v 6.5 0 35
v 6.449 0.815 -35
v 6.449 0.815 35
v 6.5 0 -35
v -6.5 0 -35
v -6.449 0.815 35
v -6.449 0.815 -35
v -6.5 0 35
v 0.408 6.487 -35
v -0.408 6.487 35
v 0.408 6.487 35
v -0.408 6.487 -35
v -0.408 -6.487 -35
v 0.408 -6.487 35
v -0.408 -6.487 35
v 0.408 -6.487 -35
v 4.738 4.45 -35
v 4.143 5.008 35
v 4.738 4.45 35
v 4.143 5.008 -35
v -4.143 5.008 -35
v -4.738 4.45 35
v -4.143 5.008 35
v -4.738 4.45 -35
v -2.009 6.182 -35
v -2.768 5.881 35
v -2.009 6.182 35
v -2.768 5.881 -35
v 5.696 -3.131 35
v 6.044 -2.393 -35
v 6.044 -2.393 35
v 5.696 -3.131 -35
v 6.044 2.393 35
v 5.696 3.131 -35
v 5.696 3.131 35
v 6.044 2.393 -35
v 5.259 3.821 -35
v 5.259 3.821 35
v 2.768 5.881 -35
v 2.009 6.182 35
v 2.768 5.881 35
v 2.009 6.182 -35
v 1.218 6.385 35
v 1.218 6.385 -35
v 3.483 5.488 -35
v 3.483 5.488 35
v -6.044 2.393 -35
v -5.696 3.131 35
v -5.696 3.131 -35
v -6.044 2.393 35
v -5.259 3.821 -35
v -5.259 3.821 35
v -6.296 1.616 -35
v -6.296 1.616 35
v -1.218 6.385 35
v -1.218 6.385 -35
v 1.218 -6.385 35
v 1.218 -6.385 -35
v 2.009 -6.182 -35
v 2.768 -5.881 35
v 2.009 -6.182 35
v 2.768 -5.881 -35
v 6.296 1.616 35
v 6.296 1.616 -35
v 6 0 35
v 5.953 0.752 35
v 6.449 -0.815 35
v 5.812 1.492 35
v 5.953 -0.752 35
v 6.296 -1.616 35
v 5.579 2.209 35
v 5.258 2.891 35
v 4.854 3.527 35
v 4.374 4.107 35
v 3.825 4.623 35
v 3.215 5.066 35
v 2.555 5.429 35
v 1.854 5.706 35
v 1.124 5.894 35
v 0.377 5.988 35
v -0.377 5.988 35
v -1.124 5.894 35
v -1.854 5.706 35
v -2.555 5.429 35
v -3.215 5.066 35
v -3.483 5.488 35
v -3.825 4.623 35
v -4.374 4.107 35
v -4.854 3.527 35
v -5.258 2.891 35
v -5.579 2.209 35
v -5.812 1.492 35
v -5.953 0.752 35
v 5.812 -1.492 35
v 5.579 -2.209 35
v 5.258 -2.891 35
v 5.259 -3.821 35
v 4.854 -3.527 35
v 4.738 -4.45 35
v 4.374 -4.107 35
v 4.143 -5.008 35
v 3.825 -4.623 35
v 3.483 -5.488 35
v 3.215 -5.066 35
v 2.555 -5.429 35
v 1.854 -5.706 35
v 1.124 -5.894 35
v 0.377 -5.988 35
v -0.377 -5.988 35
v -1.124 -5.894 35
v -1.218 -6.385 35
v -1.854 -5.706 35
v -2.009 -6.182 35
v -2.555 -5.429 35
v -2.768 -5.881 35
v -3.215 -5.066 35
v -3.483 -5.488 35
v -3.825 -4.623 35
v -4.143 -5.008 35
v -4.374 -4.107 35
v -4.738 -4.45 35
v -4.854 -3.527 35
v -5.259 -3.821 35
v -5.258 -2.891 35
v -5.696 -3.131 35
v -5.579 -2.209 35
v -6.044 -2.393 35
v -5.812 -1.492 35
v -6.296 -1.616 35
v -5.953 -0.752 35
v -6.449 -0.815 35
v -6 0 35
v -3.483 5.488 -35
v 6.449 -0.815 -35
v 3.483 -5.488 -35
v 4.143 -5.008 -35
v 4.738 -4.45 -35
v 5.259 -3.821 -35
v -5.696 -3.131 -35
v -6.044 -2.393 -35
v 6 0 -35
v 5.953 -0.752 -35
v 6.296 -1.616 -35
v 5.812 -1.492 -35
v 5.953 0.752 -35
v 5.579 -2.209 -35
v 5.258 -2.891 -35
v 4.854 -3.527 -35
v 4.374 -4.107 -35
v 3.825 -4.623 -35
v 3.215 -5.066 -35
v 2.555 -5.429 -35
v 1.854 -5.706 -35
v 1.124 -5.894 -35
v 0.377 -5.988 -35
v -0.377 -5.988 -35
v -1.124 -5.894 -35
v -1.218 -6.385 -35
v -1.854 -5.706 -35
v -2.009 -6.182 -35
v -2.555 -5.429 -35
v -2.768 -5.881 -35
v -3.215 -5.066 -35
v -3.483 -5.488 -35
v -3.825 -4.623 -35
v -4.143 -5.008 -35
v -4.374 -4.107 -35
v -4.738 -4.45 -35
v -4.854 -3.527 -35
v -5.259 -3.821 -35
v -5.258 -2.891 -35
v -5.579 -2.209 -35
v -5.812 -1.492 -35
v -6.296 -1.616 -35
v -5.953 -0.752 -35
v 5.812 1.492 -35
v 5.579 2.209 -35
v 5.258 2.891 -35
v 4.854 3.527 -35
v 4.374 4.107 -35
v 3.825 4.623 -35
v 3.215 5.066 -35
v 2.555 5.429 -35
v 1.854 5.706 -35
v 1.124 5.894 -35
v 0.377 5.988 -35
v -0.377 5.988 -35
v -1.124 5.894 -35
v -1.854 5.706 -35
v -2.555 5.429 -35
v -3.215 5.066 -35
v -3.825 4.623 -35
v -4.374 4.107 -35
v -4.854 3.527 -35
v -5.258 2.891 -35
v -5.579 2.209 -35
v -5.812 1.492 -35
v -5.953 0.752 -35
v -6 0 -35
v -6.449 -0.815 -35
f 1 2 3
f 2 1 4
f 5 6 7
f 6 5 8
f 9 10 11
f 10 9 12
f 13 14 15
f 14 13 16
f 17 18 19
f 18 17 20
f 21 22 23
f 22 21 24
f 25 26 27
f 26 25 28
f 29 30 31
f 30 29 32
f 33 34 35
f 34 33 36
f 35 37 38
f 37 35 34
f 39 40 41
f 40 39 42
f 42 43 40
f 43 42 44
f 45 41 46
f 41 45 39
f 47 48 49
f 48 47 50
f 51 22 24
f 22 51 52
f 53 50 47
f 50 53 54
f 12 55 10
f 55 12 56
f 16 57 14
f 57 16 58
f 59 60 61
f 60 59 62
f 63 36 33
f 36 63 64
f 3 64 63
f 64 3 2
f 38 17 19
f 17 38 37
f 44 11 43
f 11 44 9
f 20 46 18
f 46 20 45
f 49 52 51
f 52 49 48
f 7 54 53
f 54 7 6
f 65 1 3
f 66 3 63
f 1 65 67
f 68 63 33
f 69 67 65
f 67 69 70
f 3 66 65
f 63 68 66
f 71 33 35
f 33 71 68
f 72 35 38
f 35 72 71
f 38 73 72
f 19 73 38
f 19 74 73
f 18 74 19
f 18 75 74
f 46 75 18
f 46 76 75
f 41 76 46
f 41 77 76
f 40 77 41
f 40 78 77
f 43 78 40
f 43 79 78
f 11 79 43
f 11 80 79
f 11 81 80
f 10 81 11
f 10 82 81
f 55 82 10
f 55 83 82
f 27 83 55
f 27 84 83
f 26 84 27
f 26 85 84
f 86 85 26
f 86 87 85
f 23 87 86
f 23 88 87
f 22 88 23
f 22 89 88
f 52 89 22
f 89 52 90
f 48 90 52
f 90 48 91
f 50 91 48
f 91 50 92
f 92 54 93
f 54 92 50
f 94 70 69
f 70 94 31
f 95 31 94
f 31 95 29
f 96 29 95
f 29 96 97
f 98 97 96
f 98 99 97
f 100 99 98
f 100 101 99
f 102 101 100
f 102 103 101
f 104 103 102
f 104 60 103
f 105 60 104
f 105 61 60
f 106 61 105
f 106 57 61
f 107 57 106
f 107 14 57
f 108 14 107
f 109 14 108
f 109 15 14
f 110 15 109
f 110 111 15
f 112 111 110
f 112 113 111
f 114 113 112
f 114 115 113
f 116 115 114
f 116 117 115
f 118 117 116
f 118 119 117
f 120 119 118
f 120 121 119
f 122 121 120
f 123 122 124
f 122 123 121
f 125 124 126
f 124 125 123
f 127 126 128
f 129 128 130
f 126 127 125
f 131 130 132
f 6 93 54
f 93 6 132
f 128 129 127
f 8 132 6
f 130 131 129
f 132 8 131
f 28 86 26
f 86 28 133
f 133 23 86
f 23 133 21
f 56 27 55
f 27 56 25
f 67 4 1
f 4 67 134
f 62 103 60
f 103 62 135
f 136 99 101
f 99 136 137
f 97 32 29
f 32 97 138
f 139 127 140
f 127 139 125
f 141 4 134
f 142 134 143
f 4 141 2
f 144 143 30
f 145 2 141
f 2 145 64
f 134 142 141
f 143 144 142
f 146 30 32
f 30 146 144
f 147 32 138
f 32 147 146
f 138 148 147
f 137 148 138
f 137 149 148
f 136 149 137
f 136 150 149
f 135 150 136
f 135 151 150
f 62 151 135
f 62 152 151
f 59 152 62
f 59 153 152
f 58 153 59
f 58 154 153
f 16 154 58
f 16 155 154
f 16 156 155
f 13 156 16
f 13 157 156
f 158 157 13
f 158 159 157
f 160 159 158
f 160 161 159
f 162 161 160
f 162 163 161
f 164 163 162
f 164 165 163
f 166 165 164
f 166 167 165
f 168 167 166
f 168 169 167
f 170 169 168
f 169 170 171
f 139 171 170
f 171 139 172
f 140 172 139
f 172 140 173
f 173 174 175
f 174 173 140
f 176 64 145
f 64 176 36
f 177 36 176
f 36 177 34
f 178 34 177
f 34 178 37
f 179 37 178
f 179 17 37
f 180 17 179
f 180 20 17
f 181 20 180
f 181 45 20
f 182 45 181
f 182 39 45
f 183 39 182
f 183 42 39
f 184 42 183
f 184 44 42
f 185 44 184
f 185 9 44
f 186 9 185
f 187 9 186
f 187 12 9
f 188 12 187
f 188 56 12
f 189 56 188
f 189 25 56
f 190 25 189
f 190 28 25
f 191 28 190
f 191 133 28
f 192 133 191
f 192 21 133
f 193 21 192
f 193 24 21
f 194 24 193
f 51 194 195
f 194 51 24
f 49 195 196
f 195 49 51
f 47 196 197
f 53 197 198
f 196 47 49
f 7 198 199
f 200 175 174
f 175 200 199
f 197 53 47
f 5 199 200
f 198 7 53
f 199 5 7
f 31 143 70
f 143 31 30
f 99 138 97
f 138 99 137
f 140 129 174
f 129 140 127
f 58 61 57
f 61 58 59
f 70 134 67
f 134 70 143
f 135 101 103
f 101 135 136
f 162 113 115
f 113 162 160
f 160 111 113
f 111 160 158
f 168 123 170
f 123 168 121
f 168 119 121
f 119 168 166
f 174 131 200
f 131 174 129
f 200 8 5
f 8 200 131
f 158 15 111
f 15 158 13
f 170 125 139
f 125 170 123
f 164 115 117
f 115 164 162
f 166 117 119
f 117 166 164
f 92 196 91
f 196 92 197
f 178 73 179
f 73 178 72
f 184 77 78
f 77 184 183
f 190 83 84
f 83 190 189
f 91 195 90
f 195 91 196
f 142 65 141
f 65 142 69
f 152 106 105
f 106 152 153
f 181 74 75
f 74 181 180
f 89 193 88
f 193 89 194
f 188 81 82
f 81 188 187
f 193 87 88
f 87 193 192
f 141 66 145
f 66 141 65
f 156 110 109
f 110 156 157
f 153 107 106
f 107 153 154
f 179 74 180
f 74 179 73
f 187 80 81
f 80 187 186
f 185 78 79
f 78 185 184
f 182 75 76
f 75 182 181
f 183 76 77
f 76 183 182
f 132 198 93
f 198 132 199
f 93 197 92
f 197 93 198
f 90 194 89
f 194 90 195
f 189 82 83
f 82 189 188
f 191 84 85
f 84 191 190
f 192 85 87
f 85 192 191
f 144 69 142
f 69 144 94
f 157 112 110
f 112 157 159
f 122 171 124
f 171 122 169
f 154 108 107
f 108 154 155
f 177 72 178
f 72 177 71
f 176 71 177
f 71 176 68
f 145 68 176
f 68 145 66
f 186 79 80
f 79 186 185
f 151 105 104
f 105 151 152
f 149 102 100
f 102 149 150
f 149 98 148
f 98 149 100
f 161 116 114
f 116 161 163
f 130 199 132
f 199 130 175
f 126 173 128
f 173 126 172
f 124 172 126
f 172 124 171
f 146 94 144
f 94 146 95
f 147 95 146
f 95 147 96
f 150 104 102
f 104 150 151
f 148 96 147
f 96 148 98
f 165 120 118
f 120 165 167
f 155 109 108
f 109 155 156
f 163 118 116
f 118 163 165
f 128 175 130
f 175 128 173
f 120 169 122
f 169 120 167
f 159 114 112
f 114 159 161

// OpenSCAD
$fn = 50;


difference() {
	union() {
		translate(v = [0, 0, -35.0000000000]) {
			cylinder(h = 70, r = 6.5000000000);
		}
	}
	union() {
		translate(v = [0, 0, -100.0000000000]) {
			cylinder(h = 200, r = 6);
		}
	}
}
